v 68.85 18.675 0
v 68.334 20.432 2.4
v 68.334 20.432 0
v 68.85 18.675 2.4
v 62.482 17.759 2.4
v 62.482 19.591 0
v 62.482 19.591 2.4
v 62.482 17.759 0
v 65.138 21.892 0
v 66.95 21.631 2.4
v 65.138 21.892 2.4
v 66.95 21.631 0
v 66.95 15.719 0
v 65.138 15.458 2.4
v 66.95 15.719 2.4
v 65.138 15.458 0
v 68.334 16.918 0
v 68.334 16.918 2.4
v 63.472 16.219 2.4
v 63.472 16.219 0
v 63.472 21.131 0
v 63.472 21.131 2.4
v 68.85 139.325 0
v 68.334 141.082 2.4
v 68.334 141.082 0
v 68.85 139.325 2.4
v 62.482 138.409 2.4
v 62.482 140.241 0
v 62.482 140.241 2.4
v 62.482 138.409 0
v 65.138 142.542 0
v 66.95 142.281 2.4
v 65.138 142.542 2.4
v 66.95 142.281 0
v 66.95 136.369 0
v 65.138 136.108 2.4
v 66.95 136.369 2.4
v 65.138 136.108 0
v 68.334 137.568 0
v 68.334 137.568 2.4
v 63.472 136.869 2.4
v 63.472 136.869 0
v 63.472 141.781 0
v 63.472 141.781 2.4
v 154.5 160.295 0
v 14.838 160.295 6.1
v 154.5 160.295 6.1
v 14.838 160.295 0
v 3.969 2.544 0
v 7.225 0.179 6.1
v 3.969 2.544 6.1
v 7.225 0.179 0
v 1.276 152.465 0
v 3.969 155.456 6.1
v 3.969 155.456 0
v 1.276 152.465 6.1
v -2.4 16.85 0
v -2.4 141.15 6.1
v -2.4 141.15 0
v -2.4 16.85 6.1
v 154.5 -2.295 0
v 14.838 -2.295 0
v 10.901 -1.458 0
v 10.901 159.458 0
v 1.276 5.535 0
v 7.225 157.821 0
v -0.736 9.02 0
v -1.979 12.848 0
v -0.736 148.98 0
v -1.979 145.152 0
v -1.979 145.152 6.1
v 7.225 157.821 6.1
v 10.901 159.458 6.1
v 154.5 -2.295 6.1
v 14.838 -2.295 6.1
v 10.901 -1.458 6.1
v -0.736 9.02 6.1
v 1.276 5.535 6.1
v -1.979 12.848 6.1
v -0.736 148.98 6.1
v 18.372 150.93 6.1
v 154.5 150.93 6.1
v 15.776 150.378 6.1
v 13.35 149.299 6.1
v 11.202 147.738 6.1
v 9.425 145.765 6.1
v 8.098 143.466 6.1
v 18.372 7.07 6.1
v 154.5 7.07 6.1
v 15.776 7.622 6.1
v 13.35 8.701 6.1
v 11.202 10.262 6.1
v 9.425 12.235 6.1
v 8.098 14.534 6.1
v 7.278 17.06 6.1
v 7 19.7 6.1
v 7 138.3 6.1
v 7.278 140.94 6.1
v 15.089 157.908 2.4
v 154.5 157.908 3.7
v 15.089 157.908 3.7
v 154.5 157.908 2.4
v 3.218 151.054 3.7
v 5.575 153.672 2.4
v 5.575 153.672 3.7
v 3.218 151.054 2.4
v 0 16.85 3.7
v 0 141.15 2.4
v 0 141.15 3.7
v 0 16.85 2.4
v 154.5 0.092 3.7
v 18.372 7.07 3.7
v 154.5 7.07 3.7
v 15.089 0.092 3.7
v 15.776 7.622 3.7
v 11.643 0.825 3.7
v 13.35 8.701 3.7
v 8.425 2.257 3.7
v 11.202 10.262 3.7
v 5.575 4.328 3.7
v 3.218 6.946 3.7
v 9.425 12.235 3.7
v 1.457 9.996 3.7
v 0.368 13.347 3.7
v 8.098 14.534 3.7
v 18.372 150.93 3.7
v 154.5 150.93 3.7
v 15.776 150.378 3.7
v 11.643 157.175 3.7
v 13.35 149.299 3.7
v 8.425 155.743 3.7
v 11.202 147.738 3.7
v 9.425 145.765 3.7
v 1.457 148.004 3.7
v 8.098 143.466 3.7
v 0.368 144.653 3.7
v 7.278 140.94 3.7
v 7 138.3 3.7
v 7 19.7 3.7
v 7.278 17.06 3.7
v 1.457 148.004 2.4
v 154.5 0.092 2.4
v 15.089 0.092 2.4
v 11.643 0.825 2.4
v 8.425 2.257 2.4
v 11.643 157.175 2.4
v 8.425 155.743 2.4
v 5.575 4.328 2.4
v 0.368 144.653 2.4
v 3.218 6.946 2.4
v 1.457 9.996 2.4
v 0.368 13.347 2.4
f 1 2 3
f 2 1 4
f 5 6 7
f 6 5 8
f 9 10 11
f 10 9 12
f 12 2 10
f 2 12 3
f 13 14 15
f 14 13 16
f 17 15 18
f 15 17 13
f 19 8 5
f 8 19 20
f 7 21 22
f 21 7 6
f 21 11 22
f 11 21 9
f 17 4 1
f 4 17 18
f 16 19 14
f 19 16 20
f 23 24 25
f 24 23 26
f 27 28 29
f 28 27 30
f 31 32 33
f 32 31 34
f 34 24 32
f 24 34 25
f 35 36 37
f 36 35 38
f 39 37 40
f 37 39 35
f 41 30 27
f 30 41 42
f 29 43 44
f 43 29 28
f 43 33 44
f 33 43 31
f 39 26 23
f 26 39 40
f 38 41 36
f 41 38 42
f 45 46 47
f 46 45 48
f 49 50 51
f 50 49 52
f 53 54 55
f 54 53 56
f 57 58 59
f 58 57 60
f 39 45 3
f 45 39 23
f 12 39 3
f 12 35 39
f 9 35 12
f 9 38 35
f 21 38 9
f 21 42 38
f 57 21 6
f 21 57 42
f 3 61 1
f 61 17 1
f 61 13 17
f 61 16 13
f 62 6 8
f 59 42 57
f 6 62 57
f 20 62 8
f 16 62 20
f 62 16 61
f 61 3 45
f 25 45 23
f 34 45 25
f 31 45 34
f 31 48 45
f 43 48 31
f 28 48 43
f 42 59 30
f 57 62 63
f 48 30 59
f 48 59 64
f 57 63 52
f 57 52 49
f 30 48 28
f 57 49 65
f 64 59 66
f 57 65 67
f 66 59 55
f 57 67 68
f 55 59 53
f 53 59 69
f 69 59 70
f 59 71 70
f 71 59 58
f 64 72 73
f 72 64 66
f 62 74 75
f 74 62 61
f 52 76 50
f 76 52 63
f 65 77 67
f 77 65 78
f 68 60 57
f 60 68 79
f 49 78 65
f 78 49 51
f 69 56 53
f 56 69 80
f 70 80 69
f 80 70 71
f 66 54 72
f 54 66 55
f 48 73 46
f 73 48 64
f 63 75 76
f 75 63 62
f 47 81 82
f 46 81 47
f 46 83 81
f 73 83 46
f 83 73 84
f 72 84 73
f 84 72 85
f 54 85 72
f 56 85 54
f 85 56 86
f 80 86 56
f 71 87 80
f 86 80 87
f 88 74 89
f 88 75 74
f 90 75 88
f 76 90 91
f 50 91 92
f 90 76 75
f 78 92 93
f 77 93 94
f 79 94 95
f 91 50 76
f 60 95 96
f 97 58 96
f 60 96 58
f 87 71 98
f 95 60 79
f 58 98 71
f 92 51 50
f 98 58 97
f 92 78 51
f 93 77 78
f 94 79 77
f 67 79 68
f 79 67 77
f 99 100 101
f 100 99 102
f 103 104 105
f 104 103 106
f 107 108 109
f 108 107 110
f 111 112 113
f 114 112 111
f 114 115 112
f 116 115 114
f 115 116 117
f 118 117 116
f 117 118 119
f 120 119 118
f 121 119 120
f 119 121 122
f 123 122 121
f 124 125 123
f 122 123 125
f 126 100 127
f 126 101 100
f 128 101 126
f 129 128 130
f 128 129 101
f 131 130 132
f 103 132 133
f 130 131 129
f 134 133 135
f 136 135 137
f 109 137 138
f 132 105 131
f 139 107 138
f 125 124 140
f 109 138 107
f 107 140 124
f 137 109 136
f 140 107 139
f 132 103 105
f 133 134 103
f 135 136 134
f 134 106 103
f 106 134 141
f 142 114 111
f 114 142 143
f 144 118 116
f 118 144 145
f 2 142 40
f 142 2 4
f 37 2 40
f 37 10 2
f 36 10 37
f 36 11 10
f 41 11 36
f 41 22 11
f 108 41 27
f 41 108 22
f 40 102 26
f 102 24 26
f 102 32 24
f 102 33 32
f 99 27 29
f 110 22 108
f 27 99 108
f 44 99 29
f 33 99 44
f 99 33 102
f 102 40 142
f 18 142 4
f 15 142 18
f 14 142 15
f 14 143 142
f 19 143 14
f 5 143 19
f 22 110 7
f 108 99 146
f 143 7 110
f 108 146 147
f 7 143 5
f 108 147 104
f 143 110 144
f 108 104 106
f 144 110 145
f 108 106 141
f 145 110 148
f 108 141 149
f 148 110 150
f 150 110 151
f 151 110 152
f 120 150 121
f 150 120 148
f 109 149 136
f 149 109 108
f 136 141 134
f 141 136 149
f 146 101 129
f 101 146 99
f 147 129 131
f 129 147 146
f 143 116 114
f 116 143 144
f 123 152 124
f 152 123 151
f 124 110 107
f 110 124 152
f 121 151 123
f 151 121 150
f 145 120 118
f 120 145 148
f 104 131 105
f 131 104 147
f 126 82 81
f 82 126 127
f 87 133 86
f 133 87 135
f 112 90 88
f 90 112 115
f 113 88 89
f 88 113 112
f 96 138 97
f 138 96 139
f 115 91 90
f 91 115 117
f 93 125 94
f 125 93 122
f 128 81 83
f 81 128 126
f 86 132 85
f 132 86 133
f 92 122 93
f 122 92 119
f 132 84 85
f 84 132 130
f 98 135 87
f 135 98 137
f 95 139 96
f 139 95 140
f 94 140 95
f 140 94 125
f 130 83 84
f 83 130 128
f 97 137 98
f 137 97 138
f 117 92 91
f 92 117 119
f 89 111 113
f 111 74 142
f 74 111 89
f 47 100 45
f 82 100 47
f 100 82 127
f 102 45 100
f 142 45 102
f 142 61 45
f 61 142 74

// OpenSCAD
filament=1.2;
layers=0.4;
in=25.4;
plate_y=6*in;
plate_y=158;
//plate_x=12*in;

screw_cover=layers*4;
screw_grip=layers*4;
below_plate=10;

wall=filament*2;
grip=wall;
lip=1.3;
backing=wall;

screw_gap_x=7*in;
screw_gap_y=4.75*in;
screw=6.5;
screw_head=screw;
screw_head_h=0;


hole_x=295;
hole_y=144;
hole_d=1*in;
hole_r=hole_d/2;

cover=(plate_y-hole_y)/2;

//foce a uniform border
plate_x=cover*2+hole_x;

total_h=grip+lip+backing;

outer_wall=wall;
pad=0.1;
padd=pad*2;

plate_d=hole_d+cover/2+outer_wall*2;
plate_r=plate_d/2;
joint_buffer=4;
joint=(plate_y-hole_y)/2+joint_buffer*2;
module positive() {
    difference() {
        translate([plate_r,plate_r,0])
        minkowski() {
            cube([plate_x-plate_d,plate_y-plate_d,total_h/2]);
            cylinder(d=plate_d+outer_wall*2,h=total_h/2);
        }
        plate();
        screws();
        center_hole();
        translate([plate_x/2,-plate_y/2,-total_h/2])
        cube([plate_x,plate_y*2,total_h*2]);
    }
}

module plate() {
    translate([plate_r,plate_r,backing])
    minkowski() {
        cube([plate_x-plate_d,plate_y-plate_d,lip/2]);
        cylinder(d=plate_d,h=lip/2);
    }
}
module center_hole() {
    translate([-hole_x/2+plate_x/2,-hole_y/2+plate_y/2,backing])
    translate([hole_r,hole_r,0])
    minkowski() {
        cube([hole_x-hole_d,hole_y-hole_d,total_h/2+pad]);
        cylinder(d=hole_d,h=total_h/2+pad);
    }
}
module screws() {
    translate([0,-screw_gap_y/2+plate_y/2,0]) {
        screws_x();
        translate([0,screw_gap_y,0])
        screws_x();
    }
}
module screws_x() {
    translate([-screw_gap_x/2+plate_x/2,0,-pad]) {
        screw();
        translate([screw_gap_x,0,0])
        screw();
    }
}
module screw() {
    cylinder(d=screw,h=total_h+padd);
    translate([0,0,total_h-screw_head_h])
    cylinder(d1=screw-padd,d2=screw_head+padd,h=screw_head_h+padd);
}

module joint_x() {
    translate([-screw_gap_x/2+plate_x/2,0,0])
    hull() {
        joint();
        translate([screw_gap_x,0,0])
        joint();
    }
}
module joint() {
    translate([0,0,-pad])
    cylinder(d=joint,h=total_h+padd);
}

module side_grip() {
    translate([0,0,-padd])
    cylinder(d=joint,h=screw_grip+below_plate+padd);
}

module side_grip_x() {
    translate([-screw_gap_x/2+plate_x/2,0,0]) {
        hull() {
            side_grip();
            translate([-pad,0,0])
            side_grip();
        }
        translate([screw_gap_x,0,0])
        hull() {
            side_grip();
            translate([pad,0,0])
            side_grip();
        }
    }
}

module bar_negative() {
        difference() {
            joint_x();
            side_grip_x();
        }
}

module bars_negative() {
    translate([0,joint/2-joint_buffer,0])
    bar_negative();
    translate([0,plate_y-joint/2+joint_buffer,0])
    bar_negative();
}

module bars() {
    intersection() {
        positive();
        bars_negative();
    }
}

module sides() {
    difference() {
        positive();
        bars_negative();
    }
}

positive();
